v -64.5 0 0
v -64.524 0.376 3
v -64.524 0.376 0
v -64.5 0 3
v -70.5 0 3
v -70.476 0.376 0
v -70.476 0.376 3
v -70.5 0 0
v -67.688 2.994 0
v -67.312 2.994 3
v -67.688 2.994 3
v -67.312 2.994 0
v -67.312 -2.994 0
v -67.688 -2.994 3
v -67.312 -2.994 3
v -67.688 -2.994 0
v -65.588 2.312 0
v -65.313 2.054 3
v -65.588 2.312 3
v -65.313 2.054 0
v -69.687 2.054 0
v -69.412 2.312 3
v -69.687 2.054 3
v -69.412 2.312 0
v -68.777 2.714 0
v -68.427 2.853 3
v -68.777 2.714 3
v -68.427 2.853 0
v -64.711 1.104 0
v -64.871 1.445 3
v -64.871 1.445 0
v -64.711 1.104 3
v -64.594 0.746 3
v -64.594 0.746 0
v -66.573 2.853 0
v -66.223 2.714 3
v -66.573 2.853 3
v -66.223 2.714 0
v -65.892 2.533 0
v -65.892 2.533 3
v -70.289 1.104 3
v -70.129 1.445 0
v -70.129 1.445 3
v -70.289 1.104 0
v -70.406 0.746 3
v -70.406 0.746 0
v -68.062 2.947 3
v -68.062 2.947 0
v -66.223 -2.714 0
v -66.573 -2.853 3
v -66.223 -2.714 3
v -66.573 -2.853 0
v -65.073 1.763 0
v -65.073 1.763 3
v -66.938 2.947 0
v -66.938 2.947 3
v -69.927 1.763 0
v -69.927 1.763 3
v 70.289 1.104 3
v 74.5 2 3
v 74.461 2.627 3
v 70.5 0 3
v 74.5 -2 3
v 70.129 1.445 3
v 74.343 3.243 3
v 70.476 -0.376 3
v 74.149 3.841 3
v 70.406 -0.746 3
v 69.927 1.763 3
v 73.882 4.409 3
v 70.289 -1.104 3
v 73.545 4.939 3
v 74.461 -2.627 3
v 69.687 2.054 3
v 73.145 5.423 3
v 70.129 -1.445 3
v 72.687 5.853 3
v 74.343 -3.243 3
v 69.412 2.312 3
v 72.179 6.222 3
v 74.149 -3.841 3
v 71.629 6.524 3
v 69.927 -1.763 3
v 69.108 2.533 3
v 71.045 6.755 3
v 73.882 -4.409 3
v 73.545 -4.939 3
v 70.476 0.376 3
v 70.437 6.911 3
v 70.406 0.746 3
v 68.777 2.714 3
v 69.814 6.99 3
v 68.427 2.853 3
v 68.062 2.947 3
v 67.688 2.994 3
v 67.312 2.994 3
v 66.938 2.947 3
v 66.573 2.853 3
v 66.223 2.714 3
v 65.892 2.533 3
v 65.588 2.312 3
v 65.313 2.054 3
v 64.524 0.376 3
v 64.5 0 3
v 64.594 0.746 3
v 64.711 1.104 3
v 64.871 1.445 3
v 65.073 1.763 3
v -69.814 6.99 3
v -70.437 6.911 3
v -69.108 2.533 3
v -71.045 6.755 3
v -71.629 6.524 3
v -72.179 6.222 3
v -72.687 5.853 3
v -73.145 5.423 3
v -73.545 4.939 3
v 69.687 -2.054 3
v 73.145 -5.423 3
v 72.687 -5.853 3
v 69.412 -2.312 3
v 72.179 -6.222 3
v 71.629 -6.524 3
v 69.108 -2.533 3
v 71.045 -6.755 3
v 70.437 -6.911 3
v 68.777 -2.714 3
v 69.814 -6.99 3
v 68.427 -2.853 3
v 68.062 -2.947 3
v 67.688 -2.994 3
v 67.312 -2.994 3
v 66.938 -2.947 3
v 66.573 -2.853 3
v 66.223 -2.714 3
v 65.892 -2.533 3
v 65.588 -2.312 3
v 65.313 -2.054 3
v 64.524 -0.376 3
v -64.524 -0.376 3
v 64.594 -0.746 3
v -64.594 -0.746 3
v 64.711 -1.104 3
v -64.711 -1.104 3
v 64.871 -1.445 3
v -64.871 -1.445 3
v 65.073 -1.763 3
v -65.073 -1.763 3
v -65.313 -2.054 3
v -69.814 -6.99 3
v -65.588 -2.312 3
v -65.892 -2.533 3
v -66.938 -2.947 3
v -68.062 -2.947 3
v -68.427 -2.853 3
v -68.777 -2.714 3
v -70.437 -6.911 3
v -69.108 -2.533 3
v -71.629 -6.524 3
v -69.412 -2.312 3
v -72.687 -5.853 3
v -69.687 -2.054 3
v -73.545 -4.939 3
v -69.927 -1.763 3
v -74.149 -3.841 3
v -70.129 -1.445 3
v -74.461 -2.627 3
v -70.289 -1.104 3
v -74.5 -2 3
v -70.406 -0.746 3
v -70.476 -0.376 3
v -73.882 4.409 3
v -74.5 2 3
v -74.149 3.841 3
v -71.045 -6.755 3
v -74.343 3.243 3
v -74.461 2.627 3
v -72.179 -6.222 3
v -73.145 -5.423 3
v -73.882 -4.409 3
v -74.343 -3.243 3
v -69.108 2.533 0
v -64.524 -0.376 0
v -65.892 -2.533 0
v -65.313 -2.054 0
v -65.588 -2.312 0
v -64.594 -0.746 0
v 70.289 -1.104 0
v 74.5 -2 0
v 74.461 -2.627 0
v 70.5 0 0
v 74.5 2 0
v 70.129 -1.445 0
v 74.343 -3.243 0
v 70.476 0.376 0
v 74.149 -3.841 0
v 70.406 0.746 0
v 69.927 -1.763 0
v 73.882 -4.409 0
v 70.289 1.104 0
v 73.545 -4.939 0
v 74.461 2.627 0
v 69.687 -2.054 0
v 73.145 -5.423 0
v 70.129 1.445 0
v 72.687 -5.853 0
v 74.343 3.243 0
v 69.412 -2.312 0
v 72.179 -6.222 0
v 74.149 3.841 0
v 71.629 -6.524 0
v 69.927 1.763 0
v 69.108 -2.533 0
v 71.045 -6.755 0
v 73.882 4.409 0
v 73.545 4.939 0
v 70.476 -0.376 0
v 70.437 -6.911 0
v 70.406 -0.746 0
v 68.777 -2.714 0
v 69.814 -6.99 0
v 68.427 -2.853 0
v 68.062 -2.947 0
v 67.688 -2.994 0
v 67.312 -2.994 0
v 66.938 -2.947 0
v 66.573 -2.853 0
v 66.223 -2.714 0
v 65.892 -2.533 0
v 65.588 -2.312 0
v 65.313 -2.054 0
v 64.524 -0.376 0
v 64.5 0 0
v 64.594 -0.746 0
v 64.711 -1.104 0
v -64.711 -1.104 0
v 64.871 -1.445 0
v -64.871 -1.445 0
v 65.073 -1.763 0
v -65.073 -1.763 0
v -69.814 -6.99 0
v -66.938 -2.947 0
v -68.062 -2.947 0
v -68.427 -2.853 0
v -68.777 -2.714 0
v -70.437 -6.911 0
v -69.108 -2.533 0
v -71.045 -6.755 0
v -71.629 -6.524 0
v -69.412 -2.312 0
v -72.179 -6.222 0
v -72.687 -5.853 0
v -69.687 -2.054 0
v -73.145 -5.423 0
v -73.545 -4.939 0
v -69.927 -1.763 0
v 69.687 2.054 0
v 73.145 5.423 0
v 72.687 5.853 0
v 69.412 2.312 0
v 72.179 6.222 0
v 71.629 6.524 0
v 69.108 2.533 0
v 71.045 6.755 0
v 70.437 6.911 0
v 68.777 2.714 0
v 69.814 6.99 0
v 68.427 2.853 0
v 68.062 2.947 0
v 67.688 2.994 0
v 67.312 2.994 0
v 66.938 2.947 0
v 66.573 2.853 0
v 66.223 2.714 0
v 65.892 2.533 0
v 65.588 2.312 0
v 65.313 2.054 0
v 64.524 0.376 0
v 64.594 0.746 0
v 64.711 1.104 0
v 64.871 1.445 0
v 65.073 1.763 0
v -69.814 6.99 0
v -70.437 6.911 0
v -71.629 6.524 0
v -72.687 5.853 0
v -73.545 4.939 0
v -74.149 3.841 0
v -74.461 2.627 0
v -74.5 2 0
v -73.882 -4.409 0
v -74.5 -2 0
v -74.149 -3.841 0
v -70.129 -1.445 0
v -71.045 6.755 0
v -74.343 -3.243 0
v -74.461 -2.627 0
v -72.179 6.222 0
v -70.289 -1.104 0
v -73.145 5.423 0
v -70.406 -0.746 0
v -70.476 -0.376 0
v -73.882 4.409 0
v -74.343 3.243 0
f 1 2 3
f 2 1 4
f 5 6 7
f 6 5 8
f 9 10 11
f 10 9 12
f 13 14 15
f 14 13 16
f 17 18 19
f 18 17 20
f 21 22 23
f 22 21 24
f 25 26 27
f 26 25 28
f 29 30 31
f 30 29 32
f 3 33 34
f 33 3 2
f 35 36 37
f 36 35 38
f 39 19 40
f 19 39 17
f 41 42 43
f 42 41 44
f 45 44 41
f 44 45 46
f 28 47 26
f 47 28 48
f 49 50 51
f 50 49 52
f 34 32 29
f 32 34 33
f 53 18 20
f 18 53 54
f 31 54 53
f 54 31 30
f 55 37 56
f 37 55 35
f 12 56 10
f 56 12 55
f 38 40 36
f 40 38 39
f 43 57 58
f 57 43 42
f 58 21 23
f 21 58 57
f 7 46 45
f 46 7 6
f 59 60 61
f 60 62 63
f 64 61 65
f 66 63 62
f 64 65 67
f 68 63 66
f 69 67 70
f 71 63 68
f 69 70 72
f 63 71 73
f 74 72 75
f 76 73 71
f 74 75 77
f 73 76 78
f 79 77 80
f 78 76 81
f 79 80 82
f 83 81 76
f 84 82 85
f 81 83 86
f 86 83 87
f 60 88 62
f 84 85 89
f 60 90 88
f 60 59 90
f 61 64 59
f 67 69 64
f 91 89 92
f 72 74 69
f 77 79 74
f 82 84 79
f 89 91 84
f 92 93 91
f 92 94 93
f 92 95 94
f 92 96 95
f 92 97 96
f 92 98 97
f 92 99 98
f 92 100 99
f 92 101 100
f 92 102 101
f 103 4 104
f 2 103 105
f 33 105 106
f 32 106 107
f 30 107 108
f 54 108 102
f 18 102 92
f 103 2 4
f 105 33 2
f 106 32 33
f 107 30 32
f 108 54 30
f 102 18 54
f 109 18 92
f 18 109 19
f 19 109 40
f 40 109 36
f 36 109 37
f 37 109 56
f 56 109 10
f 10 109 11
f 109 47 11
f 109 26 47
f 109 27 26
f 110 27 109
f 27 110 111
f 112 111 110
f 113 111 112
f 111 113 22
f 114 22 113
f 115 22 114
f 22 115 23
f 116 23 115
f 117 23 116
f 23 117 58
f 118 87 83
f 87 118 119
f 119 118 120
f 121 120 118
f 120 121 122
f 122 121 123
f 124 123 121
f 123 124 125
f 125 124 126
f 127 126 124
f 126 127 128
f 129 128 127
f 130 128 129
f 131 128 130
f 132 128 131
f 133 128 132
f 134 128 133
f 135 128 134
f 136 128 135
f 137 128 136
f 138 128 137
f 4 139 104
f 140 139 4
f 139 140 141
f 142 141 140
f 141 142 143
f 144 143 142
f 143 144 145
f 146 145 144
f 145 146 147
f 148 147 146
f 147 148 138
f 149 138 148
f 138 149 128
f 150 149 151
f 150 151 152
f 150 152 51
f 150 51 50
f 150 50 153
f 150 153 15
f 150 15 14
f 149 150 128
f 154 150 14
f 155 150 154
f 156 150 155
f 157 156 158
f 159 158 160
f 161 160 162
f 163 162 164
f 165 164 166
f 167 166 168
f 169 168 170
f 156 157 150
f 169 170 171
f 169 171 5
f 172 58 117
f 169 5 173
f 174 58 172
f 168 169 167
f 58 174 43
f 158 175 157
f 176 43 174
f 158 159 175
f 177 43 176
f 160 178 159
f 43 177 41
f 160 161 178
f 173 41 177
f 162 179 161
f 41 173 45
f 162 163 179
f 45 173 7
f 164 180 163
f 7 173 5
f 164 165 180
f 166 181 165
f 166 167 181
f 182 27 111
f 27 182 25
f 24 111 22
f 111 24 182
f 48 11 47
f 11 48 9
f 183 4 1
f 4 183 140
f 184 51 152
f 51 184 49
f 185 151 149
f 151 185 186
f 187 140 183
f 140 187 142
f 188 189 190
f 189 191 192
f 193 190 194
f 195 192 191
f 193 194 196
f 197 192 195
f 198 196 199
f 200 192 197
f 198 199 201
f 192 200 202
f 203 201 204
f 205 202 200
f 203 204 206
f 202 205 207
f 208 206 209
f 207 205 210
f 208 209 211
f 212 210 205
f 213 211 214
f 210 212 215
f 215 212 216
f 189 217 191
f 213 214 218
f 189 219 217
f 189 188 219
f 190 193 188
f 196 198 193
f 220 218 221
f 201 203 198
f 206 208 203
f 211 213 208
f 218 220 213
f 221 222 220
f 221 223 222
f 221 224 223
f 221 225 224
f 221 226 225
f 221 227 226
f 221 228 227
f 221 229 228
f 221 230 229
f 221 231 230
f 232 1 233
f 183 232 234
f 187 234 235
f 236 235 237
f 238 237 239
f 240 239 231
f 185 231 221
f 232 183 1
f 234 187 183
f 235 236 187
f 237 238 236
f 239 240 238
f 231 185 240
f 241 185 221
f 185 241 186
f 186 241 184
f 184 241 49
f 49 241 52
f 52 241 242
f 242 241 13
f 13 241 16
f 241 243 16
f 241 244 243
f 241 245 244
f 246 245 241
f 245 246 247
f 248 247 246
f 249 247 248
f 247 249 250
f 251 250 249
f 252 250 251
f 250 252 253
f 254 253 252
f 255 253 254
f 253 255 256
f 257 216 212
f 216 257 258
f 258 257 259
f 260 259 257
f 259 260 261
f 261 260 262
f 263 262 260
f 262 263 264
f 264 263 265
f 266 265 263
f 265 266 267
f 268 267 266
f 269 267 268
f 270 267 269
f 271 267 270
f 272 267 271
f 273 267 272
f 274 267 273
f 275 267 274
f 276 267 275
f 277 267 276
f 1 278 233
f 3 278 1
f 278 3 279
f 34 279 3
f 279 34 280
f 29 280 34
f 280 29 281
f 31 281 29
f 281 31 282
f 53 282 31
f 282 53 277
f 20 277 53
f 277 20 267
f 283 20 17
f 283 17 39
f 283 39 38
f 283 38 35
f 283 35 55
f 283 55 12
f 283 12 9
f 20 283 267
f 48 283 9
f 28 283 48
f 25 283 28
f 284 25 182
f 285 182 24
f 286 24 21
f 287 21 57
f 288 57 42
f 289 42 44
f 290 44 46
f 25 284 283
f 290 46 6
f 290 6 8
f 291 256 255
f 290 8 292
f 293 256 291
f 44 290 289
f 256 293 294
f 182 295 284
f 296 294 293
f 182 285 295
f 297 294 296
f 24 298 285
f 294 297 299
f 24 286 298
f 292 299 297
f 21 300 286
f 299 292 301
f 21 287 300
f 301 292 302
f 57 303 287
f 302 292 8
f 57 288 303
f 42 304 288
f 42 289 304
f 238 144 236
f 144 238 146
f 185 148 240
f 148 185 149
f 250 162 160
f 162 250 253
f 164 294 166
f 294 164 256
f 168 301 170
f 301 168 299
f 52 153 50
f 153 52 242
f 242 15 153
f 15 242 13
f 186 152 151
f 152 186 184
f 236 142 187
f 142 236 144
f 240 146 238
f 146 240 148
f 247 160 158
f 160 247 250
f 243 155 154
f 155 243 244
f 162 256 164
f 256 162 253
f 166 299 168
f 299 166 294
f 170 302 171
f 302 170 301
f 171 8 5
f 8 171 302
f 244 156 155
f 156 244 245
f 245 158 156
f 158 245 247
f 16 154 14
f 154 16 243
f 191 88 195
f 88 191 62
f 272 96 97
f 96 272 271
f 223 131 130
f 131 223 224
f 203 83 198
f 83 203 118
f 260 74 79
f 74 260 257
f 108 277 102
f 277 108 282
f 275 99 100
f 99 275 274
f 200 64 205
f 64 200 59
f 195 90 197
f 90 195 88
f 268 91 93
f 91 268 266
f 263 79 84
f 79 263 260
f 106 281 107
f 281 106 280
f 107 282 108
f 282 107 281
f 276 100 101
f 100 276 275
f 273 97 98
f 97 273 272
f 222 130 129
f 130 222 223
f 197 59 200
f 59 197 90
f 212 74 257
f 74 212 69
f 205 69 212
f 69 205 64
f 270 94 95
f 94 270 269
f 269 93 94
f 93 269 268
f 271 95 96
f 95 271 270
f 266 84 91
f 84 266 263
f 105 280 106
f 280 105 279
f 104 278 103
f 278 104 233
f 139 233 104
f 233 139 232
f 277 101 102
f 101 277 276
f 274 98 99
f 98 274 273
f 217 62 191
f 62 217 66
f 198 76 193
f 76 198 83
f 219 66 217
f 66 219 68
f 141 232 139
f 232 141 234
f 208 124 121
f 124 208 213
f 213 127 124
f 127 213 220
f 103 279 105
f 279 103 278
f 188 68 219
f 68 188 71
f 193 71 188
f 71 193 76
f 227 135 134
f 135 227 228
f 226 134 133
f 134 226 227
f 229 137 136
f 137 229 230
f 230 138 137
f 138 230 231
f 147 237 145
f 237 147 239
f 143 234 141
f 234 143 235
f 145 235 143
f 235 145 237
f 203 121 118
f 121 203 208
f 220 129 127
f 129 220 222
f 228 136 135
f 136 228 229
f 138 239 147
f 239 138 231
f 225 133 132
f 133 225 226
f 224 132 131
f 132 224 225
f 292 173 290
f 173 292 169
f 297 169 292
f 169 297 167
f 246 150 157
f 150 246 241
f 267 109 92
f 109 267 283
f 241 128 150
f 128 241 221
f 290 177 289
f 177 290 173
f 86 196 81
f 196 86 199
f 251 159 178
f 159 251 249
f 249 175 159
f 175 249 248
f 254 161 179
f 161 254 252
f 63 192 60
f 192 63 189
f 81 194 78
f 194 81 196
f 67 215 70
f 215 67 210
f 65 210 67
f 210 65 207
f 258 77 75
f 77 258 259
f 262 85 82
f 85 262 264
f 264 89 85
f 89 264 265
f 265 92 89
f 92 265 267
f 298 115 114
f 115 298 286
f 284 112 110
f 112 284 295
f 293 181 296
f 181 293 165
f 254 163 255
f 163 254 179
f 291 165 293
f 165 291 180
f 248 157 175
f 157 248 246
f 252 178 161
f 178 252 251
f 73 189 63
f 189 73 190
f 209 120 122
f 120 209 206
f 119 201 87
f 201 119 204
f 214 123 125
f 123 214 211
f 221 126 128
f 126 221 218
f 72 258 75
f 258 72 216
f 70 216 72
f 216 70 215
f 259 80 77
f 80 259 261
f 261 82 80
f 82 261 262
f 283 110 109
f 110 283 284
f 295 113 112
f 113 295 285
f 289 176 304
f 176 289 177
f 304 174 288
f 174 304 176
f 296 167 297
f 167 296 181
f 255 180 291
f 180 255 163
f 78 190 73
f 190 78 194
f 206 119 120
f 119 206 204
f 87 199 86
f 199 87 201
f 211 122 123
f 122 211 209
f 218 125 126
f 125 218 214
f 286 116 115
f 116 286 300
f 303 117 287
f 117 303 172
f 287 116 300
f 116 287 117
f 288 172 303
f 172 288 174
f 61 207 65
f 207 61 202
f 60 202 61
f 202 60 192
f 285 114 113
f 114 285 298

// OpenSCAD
$fn = 50;


difference() {
	union() {
		hull() {
			translate(v = [-69.5000000000, 2.0000000000, 0]) {
				cylinder(h = 3, r = 5);
			}
			translate(v = [69.5000000000, 2.0000000000, 0]) {
				cylinder(h = 3, r = 5);
			}
			translate(v = [-69.5000000000, -2.0000000000, 0]) {
				cylinder(h = 3, r = 5);
			}
			translate(v = [69.5000000000, -2.0000000000, 0]) {
				cylinder(h = 3, r = 5);
			}
		}
	}
	union() {
		translate(v = [-67.5000000000, 0.0000000000, 0]) {
			cylinder(h = 3, r = 3.0000000000);
		}
		translate(v = [67.5000000000, 0.0000000000, 0]) {
			cylinder(h = 3, r = 3.0000000000);
		}
		translate(v = [-67.5000000000, 0.0000000000, 0]) {
			cylinder(h = 3, r = 1.5000000000);
		}
		translate(v = [67.5000000000, 0.0000000000, 0]) {
			cylinder(h = 3, r = 1.5000000000);
		}
		translate(v = [-67.5000000000, 0.0000000000, 0]) {
			cylinder(h = 3, r = 1.5000000000);
		}
		translate(v = [67.5000000000, 0.0000000000, 0]) {
			cylinder(h = 3, r = 1.5000000000);
		}
		translate(v = [-67.5000000000, 0.0000000000, 0]) {
			cylinder(h = 3, r = 1.5000000000);
		}
		translate(v = [67.5000000000, 0.0000000000, 0]) {
			cylinder(h = 3, r = 1.5000000000);
		}
	}
}
